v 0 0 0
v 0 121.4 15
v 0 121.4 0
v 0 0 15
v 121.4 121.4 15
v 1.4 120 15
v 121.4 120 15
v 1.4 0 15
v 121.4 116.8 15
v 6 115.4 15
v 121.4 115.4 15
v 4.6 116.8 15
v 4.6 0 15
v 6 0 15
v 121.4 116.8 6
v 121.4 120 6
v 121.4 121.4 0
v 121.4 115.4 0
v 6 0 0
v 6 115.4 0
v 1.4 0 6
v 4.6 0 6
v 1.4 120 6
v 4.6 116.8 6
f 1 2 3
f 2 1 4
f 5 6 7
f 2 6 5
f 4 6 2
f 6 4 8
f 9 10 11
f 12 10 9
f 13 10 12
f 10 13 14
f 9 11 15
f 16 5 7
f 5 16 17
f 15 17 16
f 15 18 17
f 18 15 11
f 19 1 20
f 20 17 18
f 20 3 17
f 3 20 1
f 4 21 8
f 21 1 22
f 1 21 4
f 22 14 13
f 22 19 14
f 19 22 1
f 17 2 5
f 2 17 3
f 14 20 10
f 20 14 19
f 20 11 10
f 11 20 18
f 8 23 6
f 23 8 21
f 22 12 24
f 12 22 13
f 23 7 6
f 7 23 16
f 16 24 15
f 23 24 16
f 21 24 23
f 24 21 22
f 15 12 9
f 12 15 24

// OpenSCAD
01_Main_Dim = 120;
02_Width = 6;
03_Height = 15;
04_Slot_Width = 3;
05_Slot_Depth = 9;
06_Clearance = 0.1;
echo(07_OutsideDim);
BigNum = 9999;
SmallNum = .01;
Slot_x = (02_Width-04_Slot_Width-06_Clearance*2)/2;
07_OutsideDim = 01_Main_Dim + Slot_x;

Text_Height = 10;
Text_Thick = 15;

difference()
	{
	
    // Main body
        cube([07_OutsideDim, 07_OutsideDim, 03_Height]);
	// Remove central portion
        translate([02_Width,-SmallNum,-SmallNum])	
		cube([BigNum, 07_OutsideDim-02_Width+SmallNum, BigNum]);
	
        translate([Slot_x, -SmallNum, 03_Height-05_Slot_Depth])
		cube([04_Slot_Width+06_Clearance*2, 01_Main_Dim+SmallNum, BigNum]);
        
	translate([Slot_x, 07_OutsideDim-Slot_x-(04_Slot_Width+06_Clearance*2), 03_Height-05_Slot_Depth])
		cube([BigNum, 04_Slot_Width+06_Clearance*2, BigNum]);
        
	
	}
